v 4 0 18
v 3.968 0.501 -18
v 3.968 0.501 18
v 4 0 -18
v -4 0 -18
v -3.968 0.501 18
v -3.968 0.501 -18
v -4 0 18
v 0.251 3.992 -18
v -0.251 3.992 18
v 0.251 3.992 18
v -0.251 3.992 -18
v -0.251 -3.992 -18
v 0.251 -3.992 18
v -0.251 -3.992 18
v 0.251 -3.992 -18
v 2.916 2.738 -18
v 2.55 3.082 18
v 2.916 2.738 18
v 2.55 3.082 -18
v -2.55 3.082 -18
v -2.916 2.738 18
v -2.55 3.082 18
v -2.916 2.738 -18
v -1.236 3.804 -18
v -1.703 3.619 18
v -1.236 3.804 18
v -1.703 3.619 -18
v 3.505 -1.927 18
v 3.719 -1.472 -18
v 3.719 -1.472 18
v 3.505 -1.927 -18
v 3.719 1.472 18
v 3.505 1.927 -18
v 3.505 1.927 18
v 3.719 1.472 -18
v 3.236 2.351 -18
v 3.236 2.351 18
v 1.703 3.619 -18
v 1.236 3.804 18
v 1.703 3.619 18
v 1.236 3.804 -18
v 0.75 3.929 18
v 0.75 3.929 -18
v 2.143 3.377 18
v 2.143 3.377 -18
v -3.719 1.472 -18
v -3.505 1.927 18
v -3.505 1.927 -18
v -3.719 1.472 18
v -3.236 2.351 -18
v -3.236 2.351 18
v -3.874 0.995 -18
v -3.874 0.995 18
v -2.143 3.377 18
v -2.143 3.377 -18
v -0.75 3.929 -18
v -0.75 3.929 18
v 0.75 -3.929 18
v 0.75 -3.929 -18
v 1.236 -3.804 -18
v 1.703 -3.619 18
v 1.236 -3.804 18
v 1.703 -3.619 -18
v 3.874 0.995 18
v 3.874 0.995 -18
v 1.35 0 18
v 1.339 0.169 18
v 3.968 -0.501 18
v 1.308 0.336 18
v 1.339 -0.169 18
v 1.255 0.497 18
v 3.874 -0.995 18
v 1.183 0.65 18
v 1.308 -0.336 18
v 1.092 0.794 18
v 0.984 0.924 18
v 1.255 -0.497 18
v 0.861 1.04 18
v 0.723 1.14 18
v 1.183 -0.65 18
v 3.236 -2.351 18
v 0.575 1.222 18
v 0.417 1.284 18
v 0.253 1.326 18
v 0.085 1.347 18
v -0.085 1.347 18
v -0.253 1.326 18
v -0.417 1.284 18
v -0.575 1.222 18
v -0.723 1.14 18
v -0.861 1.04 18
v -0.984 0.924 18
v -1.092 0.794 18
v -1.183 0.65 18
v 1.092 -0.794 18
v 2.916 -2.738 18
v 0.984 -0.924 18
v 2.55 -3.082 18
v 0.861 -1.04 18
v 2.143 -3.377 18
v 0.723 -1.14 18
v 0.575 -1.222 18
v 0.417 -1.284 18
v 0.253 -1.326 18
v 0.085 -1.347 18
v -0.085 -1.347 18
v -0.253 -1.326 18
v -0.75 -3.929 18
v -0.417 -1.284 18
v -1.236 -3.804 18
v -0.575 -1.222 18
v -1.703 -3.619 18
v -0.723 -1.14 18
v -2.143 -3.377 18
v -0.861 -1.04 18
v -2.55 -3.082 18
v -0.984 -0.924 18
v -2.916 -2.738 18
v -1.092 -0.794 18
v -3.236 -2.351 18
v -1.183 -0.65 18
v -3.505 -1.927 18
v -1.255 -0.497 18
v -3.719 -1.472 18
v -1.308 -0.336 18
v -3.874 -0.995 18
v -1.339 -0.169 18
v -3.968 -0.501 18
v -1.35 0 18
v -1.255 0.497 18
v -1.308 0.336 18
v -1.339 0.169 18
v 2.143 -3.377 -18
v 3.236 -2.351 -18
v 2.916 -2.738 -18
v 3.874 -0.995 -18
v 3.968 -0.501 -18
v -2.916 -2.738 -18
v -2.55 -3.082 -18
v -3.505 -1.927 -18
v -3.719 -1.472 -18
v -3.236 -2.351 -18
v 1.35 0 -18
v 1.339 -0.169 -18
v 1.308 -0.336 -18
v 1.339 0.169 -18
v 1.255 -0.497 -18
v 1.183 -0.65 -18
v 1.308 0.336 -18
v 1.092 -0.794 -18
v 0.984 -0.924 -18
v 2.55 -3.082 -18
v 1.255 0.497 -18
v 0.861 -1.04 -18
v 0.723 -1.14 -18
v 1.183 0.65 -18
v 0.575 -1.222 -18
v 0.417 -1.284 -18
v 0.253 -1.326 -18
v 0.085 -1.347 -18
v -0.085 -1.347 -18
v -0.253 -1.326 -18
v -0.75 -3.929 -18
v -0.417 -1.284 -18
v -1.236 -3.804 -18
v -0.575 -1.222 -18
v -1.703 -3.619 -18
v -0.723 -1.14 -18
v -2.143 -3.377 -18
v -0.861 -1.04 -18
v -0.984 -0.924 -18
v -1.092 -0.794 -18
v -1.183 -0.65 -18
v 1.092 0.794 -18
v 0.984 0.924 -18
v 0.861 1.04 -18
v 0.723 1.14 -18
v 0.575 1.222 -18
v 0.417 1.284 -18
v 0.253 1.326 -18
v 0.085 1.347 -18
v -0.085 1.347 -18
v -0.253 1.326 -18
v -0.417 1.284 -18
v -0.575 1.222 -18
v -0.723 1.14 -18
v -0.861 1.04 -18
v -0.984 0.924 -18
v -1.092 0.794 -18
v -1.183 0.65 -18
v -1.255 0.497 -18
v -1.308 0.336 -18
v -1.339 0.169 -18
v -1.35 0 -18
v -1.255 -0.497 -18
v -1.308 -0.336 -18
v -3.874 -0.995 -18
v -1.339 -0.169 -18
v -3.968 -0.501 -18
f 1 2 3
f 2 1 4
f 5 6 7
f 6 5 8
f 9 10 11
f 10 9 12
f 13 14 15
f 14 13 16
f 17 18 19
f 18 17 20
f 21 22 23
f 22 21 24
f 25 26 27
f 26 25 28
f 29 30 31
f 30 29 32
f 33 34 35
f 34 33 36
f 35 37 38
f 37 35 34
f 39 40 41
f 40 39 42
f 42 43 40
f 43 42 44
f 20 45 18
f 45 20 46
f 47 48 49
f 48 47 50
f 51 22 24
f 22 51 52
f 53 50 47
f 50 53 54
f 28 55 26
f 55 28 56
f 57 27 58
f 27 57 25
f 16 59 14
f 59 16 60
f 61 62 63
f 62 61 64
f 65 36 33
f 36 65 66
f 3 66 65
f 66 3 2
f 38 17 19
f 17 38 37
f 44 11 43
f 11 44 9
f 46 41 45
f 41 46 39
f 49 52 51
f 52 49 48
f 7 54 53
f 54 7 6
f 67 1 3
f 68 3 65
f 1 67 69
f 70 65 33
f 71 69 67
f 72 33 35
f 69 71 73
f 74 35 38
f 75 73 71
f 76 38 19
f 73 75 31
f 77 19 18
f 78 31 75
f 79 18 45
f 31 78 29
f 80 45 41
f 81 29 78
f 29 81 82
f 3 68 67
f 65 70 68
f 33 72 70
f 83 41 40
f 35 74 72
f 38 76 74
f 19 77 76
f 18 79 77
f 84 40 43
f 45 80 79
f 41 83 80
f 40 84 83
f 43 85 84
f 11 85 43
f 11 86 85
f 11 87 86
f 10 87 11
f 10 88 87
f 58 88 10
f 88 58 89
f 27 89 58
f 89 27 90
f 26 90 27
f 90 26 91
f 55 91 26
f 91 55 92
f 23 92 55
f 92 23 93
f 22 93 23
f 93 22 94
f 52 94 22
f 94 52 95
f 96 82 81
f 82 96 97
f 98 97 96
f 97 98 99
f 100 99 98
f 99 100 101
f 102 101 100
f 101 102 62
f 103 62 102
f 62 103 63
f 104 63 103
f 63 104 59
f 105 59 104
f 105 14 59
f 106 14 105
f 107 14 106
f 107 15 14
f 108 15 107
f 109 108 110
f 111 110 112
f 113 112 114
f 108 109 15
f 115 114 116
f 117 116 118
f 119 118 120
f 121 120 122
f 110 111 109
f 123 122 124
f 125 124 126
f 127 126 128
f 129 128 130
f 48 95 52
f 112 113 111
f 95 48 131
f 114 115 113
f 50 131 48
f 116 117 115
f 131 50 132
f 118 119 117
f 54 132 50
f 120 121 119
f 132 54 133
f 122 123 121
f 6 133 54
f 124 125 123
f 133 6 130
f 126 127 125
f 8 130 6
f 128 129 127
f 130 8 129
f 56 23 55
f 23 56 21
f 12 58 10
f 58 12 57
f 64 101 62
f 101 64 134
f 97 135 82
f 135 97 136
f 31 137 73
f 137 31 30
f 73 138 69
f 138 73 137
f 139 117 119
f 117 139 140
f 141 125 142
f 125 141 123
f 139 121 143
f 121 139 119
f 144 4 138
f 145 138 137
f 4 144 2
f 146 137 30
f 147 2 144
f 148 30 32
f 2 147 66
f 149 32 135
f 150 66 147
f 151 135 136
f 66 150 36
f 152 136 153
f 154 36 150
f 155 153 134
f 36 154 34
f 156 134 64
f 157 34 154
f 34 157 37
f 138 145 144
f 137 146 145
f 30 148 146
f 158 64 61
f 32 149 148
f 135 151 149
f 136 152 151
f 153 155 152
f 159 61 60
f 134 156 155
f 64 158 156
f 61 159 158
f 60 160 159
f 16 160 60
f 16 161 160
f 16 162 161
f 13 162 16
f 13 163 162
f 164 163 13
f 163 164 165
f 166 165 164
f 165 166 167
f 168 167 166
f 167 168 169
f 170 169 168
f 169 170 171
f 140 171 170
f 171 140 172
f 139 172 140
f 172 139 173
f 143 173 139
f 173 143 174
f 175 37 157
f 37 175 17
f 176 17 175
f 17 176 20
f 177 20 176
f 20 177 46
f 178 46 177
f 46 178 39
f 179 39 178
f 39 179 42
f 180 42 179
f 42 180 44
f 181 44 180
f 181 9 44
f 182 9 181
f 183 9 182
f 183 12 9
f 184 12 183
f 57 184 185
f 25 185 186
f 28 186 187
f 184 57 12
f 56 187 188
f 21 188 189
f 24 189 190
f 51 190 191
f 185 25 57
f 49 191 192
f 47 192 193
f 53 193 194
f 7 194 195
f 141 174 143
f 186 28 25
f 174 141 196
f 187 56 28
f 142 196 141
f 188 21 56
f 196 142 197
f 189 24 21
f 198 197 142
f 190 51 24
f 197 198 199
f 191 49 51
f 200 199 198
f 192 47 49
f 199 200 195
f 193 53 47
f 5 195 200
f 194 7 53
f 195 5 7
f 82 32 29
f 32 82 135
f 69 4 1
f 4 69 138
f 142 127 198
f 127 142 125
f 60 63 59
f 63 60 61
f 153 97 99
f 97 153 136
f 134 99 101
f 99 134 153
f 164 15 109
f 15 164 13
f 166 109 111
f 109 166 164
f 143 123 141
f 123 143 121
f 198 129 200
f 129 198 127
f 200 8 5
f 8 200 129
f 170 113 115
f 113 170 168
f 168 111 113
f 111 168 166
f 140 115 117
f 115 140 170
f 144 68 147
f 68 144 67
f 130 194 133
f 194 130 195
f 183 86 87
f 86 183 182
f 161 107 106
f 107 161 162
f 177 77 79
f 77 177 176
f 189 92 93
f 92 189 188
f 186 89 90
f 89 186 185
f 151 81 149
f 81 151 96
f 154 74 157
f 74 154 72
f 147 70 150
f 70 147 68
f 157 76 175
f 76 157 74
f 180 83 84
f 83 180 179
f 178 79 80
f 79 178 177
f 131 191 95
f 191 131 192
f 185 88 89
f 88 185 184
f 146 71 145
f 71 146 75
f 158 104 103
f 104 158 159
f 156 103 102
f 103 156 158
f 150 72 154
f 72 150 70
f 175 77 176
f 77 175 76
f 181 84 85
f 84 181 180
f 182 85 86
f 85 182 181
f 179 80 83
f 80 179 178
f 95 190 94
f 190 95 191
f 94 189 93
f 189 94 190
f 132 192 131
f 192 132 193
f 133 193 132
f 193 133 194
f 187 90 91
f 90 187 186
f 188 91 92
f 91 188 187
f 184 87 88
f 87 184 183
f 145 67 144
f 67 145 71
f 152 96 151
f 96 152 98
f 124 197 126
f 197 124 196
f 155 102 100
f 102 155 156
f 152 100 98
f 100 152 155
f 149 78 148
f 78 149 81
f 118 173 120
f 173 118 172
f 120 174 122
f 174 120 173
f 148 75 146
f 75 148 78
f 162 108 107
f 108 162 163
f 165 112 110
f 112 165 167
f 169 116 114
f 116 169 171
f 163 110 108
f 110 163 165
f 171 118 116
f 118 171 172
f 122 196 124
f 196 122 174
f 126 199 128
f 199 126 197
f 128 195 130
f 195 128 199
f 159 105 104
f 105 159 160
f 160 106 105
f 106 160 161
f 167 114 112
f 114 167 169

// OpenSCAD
$fn = 50;


difference() {
	union() {
		translate(v = [0, 0, -18.0000000000]) {
			cylinder(h = 36, r = 4.0000000000);
		}
	}
	union() {
		translate(v = [0, 0, -100.0000000000]) {
			cylinder(h = 200, r = 1.3500000000);
		}
	}
}
